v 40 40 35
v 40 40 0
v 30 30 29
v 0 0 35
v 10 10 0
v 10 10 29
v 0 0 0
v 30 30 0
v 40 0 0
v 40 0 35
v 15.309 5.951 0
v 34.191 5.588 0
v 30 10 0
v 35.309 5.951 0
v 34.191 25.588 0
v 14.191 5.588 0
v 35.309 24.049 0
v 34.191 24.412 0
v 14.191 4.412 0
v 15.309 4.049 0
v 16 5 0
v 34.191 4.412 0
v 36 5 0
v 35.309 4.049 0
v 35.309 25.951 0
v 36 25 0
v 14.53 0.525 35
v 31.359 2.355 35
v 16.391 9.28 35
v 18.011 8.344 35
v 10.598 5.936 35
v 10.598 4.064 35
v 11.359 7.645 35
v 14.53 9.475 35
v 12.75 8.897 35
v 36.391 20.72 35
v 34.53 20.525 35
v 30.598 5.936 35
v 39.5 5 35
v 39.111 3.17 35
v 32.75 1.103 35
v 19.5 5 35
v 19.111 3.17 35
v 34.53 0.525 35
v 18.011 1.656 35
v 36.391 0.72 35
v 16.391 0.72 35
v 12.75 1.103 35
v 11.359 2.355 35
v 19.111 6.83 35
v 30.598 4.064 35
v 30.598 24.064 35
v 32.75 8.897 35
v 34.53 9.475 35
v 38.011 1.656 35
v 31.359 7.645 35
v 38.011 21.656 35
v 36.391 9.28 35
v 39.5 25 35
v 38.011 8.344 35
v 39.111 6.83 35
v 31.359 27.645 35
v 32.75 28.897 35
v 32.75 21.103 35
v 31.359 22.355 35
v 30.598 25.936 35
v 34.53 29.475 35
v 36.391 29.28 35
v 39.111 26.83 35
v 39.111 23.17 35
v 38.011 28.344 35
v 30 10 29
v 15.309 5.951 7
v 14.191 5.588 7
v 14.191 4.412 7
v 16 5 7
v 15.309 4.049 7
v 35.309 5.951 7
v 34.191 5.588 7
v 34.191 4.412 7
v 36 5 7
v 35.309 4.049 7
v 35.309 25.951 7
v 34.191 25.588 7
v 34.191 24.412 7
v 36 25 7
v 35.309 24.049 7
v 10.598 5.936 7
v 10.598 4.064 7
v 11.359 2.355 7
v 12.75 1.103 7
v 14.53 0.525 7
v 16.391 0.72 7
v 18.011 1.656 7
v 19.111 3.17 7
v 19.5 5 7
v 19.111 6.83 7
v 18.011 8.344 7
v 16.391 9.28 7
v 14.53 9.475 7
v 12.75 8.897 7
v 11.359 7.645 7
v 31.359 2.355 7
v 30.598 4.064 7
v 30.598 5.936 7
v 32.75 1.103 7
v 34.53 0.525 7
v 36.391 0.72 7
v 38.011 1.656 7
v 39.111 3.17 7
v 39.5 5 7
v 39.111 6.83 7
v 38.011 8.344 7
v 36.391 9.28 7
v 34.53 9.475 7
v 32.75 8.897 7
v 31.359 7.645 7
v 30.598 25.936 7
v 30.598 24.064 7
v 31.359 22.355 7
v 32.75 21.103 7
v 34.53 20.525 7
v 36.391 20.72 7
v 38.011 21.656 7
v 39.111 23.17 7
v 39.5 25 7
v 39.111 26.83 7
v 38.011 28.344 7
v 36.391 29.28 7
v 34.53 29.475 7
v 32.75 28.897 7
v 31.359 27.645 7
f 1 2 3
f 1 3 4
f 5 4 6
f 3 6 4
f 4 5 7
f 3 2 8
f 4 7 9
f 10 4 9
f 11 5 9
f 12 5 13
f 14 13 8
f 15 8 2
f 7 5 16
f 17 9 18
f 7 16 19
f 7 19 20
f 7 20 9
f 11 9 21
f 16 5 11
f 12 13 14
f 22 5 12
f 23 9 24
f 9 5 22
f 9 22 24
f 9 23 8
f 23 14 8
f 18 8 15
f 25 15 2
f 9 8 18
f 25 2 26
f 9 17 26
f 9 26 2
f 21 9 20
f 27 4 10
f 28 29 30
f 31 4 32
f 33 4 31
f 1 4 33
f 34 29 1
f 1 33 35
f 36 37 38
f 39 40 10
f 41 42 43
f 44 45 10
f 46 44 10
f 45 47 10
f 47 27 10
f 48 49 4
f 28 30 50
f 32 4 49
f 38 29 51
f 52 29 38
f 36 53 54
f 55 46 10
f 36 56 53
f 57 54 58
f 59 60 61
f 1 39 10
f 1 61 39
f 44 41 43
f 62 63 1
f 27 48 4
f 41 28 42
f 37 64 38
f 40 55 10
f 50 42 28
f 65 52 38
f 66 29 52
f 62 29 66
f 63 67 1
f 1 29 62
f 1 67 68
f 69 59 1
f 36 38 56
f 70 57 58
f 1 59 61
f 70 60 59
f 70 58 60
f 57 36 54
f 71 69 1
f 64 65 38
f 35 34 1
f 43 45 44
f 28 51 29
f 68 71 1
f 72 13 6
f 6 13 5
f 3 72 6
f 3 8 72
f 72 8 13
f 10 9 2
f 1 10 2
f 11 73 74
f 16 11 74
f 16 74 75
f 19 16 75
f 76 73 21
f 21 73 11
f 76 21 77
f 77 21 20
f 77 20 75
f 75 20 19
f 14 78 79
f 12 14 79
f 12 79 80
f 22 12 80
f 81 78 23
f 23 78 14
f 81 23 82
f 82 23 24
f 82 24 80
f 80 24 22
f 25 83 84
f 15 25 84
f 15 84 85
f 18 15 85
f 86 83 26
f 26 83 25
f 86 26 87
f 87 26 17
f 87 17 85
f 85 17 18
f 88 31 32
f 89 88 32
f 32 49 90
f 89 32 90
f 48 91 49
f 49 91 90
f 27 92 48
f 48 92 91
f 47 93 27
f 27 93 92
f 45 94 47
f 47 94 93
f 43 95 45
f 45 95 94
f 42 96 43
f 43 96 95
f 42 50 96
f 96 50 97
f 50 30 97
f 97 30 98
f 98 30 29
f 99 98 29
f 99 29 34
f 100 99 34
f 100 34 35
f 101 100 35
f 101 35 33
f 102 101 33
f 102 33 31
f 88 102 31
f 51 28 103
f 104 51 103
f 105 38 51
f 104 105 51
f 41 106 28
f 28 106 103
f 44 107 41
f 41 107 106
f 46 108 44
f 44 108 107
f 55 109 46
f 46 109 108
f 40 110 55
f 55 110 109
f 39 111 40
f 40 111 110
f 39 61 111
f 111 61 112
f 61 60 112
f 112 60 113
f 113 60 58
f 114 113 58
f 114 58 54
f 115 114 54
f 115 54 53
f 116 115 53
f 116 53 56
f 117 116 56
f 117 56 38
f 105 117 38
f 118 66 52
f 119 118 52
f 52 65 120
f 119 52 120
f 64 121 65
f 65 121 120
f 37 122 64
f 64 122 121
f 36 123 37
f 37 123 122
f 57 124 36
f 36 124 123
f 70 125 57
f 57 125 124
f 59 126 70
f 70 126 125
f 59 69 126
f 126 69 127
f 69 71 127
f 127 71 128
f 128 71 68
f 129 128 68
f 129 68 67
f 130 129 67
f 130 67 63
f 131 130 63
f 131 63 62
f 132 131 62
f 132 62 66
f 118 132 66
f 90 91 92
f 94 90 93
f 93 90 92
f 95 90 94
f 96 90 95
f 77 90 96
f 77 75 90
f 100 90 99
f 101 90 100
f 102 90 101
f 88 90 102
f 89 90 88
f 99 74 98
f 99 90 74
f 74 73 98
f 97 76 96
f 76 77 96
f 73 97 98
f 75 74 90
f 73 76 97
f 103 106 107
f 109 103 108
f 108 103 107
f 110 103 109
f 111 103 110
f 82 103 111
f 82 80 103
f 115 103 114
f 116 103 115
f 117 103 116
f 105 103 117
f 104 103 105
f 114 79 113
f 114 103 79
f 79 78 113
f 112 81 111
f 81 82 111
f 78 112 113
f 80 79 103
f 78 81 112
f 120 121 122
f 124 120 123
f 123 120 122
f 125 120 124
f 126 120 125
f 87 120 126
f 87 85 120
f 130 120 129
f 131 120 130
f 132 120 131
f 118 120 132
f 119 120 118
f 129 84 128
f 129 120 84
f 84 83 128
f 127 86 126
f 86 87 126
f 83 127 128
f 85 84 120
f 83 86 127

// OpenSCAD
difference(){
	cube([40,40,35]);

	// cut corner
	translate([0,0,-1]){
		rotate([0,0,45]){
			cube([60,40,42]);
		}
	}

	// indent
	translate([0,10,-1]){
		#cube([30,30,30]);
	}

	// screw holes
	translate([15,5,-1]){
		// thread
		#cylinder(r-2,h=40);

		translate([0,0,8]){
			// head
			cylinder(r=4.5,h=30);
		}
	}

	translate([35,5,-1]){
		// thread
		#cylinder(r-2,h=40);

		translate([0,0,8]){
			// head
			cylinder(r=4.5,h=30);
		}
	}

	translate([35,25,-1]){
		// thread
		#cylinder(r-2,h=40);

		translate([0,0,8]){
			// head
			cylinder(r=4.5,h=30);
		}
	}
	
}
